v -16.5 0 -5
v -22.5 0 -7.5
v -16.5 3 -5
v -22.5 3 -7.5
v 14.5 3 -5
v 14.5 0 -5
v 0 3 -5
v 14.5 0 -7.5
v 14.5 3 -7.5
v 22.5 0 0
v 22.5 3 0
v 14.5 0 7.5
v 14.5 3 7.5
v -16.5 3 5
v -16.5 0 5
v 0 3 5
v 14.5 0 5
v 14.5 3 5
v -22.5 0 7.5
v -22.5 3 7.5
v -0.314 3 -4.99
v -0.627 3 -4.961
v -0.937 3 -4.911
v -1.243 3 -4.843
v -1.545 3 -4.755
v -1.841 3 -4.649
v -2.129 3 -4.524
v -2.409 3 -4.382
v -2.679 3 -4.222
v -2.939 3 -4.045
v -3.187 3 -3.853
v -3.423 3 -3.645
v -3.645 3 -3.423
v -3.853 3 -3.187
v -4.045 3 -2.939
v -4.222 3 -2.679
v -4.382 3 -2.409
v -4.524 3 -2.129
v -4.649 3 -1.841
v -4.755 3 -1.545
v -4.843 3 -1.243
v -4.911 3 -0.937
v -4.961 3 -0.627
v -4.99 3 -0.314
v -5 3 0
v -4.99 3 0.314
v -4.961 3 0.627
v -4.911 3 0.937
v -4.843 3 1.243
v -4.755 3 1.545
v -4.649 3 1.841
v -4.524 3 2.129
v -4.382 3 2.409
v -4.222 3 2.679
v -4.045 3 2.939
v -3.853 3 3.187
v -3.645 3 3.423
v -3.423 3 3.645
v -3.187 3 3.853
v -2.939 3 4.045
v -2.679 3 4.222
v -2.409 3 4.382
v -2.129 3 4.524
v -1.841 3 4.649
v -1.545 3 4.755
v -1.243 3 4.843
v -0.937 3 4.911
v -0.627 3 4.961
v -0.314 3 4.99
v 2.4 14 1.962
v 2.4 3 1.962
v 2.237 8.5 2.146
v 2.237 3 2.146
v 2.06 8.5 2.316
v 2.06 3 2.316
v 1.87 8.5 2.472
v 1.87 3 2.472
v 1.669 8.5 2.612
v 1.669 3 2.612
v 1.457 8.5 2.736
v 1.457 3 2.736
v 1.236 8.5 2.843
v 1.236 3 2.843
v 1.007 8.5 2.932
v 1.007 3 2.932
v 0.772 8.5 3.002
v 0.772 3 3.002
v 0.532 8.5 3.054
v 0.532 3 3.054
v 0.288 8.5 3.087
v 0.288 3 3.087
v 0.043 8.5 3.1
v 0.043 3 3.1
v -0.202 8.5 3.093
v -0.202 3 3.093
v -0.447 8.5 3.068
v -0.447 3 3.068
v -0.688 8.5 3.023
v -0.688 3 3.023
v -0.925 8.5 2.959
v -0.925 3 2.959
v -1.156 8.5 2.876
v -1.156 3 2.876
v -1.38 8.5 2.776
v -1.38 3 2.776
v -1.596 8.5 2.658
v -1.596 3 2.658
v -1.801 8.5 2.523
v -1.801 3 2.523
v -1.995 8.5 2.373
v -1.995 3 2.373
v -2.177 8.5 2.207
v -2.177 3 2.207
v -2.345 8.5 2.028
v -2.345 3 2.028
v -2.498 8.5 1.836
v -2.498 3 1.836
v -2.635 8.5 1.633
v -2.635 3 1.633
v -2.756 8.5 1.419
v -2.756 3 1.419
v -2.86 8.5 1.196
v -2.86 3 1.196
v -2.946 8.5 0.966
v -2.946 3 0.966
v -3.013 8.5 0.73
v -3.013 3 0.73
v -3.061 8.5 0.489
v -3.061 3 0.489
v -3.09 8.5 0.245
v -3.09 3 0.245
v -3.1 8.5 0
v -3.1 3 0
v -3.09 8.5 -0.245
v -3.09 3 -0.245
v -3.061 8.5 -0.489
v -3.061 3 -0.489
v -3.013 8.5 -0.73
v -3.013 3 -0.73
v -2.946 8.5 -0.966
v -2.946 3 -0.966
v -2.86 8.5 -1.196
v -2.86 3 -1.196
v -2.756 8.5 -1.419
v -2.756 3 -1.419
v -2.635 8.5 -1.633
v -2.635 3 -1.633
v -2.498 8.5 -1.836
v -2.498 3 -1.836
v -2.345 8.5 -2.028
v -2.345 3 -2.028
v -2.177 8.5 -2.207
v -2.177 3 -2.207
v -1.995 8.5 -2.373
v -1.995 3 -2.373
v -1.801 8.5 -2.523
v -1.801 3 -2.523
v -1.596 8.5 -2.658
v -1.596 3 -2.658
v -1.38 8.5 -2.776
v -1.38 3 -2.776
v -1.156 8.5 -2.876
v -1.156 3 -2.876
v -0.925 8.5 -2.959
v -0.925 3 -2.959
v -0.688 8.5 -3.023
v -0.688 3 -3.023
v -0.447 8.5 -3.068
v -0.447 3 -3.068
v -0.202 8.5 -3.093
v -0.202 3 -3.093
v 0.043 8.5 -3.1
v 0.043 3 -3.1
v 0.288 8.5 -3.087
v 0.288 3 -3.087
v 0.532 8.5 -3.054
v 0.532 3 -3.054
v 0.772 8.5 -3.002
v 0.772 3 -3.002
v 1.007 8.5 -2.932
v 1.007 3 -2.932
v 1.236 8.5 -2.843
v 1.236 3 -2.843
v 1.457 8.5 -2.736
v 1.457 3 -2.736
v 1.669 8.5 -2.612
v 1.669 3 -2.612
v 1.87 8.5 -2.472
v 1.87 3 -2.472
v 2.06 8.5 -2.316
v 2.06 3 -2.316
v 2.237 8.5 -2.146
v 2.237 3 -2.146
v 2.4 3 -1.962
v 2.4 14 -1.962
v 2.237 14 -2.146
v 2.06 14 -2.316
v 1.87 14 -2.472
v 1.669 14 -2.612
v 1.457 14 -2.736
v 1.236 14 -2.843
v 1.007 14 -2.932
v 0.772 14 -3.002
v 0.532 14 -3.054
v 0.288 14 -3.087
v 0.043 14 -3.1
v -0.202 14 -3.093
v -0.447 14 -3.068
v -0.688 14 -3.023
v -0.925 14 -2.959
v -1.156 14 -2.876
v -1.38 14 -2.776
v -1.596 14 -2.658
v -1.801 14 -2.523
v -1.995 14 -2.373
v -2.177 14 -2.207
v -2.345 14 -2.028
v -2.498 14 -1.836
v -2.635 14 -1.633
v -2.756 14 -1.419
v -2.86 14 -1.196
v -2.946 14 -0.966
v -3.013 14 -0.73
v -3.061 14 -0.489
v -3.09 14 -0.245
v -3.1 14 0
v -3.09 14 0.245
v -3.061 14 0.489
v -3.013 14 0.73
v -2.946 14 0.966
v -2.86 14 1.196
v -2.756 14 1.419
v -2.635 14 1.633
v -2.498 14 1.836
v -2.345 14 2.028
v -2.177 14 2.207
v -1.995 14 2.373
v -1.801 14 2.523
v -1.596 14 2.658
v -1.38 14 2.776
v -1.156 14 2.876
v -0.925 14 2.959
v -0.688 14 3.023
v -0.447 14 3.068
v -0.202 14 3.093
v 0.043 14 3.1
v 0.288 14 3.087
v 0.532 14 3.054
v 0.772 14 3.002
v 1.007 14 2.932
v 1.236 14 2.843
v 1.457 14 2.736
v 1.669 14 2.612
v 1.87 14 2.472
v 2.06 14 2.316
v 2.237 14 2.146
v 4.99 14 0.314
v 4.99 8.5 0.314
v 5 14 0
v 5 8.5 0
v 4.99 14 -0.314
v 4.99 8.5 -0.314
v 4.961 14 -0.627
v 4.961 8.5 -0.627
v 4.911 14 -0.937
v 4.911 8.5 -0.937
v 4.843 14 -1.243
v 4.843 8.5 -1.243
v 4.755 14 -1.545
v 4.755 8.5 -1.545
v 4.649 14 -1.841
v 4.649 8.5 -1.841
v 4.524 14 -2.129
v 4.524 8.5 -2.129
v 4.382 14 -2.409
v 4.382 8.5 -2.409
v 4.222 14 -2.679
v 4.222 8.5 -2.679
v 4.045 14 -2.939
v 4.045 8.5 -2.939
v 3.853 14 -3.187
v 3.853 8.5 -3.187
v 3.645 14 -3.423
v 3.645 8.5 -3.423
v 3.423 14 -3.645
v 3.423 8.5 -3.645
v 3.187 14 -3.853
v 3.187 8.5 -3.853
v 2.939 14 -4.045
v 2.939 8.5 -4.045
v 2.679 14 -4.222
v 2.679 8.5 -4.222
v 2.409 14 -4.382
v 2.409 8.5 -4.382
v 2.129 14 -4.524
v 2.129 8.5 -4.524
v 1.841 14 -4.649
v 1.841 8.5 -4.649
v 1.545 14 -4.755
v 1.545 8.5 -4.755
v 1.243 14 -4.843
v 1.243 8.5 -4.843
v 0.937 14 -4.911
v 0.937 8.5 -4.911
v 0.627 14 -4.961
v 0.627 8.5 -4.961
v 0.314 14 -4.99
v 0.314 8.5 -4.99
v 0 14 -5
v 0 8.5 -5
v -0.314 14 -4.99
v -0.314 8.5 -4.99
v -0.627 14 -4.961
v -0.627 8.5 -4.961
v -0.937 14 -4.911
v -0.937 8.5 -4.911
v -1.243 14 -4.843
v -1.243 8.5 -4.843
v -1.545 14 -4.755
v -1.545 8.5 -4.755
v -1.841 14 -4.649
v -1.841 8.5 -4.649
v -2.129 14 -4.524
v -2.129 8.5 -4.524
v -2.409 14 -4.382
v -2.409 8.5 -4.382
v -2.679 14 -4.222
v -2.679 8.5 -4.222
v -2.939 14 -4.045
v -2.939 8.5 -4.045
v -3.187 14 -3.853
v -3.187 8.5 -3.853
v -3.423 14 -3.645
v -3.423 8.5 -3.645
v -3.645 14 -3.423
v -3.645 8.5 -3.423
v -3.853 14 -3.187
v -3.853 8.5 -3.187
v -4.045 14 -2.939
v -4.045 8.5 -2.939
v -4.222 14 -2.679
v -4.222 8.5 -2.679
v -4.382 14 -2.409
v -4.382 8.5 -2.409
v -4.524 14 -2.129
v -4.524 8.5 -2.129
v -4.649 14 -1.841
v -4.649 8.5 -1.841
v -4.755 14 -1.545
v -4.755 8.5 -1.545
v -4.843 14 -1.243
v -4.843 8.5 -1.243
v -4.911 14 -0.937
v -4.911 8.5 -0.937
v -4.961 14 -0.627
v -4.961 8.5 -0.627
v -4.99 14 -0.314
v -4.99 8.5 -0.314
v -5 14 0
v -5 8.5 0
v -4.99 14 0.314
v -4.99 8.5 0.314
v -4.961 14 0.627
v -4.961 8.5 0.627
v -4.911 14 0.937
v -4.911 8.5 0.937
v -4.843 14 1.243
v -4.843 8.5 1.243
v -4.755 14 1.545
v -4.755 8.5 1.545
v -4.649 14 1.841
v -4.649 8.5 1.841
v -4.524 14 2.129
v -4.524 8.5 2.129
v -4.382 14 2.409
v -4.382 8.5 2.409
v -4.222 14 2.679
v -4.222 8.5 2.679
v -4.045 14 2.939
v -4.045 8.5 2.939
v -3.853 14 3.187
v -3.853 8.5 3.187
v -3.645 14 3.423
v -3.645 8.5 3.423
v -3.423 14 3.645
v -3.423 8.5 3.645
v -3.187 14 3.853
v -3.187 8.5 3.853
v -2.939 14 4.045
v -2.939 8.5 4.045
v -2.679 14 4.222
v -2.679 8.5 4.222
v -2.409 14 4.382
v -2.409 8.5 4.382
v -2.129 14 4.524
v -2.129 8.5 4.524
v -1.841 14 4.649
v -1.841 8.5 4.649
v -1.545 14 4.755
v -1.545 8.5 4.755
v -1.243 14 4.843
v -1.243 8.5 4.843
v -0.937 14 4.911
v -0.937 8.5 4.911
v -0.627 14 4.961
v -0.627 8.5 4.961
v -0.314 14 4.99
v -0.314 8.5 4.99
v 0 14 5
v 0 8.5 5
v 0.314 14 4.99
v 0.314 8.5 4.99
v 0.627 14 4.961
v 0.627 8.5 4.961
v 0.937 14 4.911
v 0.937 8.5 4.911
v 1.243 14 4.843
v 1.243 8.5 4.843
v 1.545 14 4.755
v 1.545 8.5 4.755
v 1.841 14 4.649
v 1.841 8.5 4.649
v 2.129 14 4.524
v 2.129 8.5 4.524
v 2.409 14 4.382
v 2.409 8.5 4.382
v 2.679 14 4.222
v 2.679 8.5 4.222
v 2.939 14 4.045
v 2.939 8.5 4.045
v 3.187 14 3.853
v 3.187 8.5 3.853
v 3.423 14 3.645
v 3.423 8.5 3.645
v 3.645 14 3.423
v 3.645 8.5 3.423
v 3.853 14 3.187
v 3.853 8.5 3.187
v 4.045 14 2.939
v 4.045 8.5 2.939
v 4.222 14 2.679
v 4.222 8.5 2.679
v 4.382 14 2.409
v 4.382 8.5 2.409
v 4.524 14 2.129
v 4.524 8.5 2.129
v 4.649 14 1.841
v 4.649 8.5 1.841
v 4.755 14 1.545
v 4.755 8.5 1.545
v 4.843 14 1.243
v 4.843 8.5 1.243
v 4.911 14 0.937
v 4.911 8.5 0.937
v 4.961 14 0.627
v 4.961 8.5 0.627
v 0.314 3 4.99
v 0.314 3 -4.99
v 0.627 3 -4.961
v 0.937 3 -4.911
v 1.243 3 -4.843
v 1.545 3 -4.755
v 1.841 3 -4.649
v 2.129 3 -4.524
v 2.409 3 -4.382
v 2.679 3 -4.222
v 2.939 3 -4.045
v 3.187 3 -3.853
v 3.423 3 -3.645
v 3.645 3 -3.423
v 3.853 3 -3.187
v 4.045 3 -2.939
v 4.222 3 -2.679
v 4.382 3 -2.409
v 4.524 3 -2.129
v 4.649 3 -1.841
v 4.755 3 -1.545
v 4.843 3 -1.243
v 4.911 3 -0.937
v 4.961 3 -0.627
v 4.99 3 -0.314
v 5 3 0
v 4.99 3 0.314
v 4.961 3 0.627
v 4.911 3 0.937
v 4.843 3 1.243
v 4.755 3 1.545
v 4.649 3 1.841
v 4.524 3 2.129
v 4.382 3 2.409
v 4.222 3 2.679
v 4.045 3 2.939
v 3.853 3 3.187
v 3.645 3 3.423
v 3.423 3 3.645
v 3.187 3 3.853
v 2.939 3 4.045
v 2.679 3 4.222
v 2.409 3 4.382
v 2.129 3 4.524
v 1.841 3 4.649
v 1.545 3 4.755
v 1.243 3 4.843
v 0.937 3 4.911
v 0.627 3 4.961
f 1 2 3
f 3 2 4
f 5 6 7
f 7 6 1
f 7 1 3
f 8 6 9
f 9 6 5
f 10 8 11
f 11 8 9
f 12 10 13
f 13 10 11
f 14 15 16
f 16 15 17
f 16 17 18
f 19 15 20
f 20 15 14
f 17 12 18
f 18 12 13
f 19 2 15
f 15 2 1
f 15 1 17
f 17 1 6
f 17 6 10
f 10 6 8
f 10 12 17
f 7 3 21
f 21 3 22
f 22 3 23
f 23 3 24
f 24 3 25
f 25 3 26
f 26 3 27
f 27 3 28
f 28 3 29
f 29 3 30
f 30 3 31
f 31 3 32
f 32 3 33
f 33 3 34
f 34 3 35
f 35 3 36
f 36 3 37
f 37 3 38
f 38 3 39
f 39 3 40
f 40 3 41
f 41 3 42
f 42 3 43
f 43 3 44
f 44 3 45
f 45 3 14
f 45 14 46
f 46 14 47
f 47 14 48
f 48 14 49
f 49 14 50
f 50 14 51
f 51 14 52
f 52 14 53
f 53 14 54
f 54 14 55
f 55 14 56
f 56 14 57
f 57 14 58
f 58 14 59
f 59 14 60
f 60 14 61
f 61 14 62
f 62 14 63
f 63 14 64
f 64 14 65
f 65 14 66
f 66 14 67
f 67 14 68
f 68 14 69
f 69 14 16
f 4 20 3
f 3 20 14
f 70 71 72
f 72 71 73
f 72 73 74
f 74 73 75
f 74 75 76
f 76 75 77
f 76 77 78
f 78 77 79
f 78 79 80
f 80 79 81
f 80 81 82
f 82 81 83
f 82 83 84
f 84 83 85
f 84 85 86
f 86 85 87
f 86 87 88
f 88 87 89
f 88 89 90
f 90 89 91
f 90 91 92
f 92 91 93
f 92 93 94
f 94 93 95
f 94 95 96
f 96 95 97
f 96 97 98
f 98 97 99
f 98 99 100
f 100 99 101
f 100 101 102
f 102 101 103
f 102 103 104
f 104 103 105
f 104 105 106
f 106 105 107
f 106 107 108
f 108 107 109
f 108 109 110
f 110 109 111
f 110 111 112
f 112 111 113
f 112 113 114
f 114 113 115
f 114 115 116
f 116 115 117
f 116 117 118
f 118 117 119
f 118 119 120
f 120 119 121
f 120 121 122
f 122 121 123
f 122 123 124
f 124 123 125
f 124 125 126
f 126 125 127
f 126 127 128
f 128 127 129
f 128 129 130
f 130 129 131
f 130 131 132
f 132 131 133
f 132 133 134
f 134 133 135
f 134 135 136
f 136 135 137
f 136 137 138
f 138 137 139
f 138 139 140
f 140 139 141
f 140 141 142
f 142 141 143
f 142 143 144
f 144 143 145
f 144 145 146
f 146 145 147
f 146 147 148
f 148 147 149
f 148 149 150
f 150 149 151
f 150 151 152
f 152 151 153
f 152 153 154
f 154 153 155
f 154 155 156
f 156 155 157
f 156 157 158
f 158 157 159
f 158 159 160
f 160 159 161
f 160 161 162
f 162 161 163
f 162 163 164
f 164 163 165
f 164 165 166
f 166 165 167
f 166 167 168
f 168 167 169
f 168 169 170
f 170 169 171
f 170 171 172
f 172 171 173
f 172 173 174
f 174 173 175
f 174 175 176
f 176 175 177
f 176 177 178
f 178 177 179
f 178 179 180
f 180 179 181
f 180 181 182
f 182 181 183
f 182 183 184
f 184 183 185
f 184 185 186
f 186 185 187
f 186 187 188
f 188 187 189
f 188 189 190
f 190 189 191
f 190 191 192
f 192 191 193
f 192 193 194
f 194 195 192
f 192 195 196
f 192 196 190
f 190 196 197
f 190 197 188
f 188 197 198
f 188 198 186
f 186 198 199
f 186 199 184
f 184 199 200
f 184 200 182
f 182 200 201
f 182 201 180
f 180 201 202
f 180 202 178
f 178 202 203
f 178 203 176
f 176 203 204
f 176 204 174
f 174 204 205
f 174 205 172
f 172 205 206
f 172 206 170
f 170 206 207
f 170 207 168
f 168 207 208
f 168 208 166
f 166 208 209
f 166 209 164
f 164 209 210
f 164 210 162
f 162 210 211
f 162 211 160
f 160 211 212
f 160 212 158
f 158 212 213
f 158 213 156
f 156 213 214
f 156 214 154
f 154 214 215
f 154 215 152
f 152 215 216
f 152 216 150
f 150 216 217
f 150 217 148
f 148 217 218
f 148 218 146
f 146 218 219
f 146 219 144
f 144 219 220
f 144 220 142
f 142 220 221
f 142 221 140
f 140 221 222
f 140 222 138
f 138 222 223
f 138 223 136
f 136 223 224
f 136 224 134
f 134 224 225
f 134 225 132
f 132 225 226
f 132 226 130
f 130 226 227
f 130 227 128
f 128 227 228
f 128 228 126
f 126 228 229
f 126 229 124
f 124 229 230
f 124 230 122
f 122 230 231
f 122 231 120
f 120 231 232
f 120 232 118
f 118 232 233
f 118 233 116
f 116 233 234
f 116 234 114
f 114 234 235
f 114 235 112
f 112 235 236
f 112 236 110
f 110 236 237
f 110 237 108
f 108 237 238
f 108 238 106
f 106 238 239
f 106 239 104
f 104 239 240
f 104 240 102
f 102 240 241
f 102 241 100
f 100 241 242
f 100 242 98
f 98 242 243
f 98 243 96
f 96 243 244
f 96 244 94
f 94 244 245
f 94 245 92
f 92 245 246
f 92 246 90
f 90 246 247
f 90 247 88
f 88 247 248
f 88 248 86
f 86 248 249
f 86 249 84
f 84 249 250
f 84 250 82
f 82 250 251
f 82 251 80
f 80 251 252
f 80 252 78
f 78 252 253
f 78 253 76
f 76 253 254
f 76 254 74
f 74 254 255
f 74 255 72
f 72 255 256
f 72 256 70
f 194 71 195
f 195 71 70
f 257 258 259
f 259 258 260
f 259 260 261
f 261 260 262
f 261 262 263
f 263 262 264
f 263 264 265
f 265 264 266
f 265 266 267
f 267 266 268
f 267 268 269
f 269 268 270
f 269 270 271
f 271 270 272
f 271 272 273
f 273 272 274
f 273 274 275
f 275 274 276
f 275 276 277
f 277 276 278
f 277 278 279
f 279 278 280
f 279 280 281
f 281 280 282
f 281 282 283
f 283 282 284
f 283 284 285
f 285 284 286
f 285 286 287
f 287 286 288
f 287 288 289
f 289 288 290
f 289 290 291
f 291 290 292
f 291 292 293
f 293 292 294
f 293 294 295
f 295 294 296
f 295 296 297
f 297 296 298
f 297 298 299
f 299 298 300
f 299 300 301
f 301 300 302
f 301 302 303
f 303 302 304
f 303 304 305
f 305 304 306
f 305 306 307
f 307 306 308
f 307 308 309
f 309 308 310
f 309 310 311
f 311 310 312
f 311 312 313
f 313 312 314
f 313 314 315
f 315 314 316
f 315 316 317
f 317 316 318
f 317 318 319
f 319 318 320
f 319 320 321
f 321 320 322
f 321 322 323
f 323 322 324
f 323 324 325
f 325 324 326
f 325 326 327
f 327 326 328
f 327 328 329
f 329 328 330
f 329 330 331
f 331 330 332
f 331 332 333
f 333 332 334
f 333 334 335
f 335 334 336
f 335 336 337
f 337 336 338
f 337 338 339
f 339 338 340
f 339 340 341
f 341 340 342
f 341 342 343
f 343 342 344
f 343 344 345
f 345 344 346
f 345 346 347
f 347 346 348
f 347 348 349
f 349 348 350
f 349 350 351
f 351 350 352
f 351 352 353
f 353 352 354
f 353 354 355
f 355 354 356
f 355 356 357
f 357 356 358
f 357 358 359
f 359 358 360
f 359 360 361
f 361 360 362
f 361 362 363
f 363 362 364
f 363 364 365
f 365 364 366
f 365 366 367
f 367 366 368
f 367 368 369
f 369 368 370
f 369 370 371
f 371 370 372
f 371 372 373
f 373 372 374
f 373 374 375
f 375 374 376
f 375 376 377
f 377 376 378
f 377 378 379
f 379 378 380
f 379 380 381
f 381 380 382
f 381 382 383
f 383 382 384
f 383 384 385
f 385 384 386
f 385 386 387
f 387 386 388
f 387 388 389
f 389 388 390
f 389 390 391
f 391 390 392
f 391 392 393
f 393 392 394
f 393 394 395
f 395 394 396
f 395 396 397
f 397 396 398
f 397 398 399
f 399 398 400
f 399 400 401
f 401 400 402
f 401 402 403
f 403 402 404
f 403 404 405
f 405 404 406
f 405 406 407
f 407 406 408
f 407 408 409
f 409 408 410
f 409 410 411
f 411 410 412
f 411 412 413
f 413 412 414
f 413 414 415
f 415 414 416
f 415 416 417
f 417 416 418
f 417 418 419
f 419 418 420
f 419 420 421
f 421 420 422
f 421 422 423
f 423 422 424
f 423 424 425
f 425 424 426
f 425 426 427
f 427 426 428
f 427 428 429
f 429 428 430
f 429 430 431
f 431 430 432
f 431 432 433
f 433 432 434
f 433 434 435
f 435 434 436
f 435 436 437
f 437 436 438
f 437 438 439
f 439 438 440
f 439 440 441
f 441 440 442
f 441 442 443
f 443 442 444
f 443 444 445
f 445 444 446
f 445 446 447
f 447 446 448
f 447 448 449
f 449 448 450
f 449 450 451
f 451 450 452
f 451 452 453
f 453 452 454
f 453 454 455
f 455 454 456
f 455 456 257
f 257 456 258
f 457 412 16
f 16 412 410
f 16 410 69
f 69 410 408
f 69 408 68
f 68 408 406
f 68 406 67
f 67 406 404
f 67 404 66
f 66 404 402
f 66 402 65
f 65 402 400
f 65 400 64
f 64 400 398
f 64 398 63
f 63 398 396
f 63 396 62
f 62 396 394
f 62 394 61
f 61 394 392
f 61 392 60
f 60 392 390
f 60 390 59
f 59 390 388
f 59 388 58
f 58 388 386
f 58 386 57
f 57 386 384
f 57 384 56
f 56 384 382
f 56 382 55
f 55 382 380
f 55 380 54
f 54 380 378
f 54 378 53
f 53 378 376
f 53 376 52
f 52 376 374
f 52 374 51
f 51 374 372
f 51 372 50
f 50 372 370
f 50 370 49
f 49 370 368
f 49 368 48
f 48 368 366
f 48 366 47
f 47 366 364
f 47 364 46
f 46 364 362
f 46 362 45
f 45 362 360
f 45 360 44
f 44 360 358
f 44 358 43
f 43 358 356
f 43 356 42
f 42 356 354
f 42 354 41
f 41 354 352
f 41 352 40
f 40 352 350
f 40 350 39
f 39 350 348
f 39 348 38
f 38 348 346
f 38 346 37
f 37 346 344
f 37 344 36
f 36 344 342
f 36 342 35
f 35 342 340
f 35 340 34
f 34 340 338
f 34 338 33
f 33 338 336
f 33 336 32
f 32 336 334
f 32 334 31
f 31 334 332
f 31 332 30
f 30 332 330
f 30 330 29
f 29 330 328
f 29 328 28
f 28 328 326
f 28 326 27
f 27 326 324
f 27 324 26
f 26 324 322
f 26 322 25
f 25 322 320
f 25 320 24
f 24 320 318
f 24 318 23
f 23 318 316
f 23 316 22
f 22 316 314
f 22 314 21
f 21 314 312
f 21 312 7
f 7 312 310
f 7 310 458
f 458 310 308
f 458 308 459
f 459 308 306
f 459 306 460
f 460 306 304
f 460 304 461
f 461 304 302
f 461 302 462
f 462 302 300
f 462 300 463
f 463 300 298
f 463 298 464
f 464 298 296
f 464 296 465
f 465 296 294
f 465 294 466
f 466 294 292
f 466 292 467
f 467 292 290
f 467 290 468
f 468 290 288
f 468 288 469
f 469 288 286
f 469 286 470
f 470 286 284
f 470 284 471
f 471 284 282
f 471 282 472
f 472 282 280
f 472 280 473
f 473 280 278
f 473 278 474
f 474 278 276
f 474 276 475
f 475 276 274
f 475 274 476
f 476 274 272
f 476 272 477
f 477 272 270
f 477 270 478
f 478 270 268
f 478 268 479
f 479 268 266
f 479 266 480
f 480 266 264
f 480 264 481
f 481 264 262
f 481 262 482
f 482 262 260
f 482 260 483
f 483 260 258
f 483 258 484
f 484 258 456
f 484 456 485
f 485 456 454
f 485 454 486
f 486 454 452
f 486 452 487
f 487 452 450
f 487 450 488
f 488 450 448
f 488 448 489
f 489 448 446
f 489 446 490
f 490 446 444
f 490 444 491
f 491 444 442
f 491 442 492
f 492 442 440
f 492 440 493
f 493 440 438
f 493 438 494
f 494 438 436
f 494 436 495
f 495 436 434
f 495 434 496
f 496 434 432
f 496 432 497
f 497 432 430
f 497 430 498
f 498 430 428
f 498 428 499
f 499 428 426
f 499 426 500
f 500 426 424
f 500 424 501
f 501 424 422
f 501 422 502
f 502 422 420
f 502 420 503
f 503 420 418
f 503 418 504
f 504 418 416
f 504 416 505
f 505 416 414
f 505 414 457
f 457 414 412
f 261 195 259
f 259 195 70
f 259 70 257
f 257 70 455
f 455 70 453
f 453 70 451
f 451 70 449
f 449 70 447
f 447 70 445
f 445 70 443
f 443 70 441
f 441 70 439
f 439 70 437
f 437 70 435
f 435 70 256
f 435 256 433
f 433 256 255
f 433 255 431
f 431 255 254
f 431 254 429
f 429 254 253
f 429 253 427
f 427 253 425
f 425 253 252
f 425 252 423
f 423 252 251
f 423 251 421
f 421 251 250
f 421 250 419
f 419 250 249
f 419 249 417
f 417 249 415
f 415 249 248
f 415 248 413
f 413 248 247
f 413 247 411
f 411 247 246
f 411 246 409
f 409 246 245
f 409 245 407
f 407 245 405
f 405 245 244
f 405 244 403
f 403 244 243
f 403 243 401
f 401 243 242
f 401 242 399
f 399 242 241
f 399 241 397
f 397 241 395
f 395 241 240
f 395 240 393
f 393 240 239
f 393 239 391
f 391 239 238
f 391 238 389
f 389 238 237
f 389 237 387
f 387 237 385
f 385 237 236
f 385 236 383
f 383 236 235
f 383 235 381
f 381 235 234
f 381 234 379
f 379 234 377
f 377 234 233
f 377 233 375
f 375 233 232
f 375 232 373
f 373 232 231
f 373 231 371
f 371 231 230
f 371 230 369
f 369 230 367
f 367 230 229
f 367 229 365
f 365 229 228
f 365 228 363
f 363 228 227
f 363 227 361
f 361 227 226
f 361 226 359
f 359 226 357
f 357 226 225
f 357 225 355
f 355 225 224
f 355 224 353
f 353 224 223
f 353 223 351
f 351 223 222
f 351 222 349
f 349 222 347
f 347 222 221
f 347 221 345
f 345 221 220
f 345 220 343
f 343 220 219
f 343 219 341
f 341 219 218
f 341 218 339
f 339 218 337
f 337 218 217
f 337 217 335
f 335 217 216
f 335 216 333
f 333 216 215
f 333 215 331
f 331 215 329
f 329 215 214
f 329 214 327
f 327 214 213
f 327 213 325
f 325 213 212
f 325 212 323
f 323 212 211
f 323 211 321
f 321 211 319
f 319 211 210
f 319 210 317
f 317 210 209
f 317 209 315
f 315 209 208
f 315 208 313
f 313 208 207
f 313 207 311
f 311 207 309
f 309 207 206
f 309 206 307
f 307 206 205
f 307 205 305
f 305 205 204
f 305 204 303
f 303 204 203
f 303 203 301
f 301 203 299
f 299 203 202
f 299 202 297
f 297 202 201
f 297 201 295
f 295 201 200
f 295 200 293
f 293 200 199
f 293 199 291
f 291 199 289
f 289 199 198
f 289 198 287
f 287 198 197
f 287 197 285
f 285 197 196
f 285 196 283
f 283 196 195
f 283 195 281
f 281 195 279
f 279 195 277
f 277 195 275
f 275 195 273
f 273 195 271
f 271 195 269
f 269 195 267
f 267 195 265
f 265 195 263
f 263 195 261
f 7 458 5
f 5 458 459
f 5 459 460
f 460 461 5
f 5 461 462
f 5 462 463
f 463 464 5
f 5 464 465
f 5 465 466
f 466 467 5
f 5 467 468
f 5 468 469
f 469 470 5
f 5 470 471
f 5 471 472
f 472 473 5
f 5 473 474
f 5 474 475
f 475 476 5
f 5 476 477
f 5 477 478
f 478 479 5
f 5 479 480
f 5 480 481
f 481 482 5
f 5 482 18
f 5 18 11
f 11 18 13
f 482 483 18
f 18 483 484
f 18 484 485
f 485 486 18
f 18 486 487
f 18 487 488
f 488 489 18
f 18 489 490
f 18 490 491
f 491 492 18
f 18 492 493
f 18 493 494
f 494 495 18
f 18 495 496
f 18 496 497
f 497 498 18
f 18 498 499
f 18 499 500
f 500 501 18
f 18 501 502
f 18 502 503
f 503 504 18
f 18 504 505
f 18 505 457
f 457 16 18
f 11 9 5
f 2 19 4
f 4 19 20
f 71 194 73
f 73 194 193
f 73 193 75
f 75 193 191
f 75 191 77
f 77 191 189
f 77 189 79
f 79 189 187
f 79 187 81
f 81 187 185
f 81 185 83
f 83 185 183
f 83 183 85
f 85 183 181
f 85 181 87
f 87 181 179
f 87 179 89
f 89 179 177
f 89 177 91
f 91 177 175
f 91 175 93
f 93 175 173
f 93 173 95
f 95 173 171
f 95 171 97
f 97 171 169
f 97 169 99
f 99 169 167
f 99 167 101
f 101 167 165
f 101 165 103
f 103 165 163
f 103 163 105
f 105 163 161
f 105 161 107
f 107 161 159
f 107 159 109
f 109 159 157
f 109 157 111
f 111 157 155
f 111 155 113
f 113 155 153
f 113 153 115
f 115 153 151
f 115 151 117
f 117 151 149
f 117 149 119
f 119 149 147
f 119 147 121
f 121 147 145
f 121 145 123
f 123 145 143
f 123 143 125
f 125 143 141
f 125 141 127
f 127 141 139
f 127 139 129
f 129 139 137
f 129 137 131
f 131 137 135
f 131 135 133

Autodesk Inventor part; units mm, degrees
ref_plane "YZ Plane" through (0, 0, 0) normal (1, 0, 0) x (0, 1, 0)
ref_plane "XZ Plane" through (0, 0, 0) normal (0, 1, 0) x (-1, 0, 0)
ref_plane "XY Plane" through (0, 0, 0) normal (0, 0, 1) x (1, 0, 0)
sketch "Sketch1" plane through (0, 0, 0) normal (0, 1, 0) x (-1, 0, 0)
  line L0 (22.5, -7.5) -> (22.5, 7.5)
  line L1 (22.5, 7.5) -> (-22.5, 7.5)
  line L2 (-22.5, -7.5) -> (22.5, -7.5)
  line L3 (-30, 0) -> (22.5, 0)
  line L4 (-22.5, -7.5) -> (-22.5, 7.5)
  line L5 (0, -7.5) -> (0, 7.5)
  line L6 (-22.5, -7.5) -> (-22.5, 7.5)
  point P0 (0, 0)
  dimension "d0" = 15
  dimension "d1" = 45
extrude "Extrusion1" add sketch "Sketch1" along normal blind 3
sketch "Sketch2" plane through (0, 3, 0) normal (0, 1, 0) x (1, 0, 0)
  circle A0 centre (0, 0) radius 5
  arc A1 (2.4, 1.9621) -> (2.4, -1.9621) centre (0, 0) ccw
  line L0 (2.4, 1.9621) -> (2.4, -1.9621)
  dimension "d4" = 10
  dimension "d5" = 3.1
  dimension "d6" = 2.4
extrude "Extrusion2" add sketch "Sketch2" along normal blind 11
sketch "Sketch3" plane through (0, 3, 0) normal (0, 1, 0) x (1, 0, 0)
  line L0 (22.5, -7.5) -> (22.5, 7.5) projected
  line L1 (22.5, 0) -> (14.5, 7.5)
  line L2 (22.5, 7.5) -> (-22.5, 7.5) projected
  line L3 (14.5, 7.5) -> (14.5, 5)
  line L4 (14.5, 5) -> (-16.5, 5)
  line L5 (-22.5, 7.5) -> (-22.5, -7.5) projected
  line L6 (-16.5, 5) -> (-22.5, 7.5)
  line L7 (-22.5, 7.5) -> (-22.5, -7.5)
  line L8 (-22.5, 0) -> (22.5, 0)
  line L9 (22.5, 0) -> (14.5, -7.5)
  line L10 (-22.5, -7.5) -> (22.5, -7.5) projected
  line L11 (14.5, -7.5) -> (14.5, -5)
  line L12 (14.5, -5) -> (-16.5, -5)
  line L13 (-16.5, -5) -> (-22.5, -7.5)
  point P0 (0, 0)
  dimension "d9" = 2.5
  dimension "d10" = 8
  dimension "d11" = 6
  dimension "d14" = 6
  dimension "d15" = 2.5
  dimension "d16" = 8
extrude "Extrusion3" cut sketch "Sketch3" against normal through all contours L10 L9 L0 | L1 L2 L0 | L10 L13 L12 L11 | L3 L4 L6 L2
properties part number "Motor_arrow_v02"
